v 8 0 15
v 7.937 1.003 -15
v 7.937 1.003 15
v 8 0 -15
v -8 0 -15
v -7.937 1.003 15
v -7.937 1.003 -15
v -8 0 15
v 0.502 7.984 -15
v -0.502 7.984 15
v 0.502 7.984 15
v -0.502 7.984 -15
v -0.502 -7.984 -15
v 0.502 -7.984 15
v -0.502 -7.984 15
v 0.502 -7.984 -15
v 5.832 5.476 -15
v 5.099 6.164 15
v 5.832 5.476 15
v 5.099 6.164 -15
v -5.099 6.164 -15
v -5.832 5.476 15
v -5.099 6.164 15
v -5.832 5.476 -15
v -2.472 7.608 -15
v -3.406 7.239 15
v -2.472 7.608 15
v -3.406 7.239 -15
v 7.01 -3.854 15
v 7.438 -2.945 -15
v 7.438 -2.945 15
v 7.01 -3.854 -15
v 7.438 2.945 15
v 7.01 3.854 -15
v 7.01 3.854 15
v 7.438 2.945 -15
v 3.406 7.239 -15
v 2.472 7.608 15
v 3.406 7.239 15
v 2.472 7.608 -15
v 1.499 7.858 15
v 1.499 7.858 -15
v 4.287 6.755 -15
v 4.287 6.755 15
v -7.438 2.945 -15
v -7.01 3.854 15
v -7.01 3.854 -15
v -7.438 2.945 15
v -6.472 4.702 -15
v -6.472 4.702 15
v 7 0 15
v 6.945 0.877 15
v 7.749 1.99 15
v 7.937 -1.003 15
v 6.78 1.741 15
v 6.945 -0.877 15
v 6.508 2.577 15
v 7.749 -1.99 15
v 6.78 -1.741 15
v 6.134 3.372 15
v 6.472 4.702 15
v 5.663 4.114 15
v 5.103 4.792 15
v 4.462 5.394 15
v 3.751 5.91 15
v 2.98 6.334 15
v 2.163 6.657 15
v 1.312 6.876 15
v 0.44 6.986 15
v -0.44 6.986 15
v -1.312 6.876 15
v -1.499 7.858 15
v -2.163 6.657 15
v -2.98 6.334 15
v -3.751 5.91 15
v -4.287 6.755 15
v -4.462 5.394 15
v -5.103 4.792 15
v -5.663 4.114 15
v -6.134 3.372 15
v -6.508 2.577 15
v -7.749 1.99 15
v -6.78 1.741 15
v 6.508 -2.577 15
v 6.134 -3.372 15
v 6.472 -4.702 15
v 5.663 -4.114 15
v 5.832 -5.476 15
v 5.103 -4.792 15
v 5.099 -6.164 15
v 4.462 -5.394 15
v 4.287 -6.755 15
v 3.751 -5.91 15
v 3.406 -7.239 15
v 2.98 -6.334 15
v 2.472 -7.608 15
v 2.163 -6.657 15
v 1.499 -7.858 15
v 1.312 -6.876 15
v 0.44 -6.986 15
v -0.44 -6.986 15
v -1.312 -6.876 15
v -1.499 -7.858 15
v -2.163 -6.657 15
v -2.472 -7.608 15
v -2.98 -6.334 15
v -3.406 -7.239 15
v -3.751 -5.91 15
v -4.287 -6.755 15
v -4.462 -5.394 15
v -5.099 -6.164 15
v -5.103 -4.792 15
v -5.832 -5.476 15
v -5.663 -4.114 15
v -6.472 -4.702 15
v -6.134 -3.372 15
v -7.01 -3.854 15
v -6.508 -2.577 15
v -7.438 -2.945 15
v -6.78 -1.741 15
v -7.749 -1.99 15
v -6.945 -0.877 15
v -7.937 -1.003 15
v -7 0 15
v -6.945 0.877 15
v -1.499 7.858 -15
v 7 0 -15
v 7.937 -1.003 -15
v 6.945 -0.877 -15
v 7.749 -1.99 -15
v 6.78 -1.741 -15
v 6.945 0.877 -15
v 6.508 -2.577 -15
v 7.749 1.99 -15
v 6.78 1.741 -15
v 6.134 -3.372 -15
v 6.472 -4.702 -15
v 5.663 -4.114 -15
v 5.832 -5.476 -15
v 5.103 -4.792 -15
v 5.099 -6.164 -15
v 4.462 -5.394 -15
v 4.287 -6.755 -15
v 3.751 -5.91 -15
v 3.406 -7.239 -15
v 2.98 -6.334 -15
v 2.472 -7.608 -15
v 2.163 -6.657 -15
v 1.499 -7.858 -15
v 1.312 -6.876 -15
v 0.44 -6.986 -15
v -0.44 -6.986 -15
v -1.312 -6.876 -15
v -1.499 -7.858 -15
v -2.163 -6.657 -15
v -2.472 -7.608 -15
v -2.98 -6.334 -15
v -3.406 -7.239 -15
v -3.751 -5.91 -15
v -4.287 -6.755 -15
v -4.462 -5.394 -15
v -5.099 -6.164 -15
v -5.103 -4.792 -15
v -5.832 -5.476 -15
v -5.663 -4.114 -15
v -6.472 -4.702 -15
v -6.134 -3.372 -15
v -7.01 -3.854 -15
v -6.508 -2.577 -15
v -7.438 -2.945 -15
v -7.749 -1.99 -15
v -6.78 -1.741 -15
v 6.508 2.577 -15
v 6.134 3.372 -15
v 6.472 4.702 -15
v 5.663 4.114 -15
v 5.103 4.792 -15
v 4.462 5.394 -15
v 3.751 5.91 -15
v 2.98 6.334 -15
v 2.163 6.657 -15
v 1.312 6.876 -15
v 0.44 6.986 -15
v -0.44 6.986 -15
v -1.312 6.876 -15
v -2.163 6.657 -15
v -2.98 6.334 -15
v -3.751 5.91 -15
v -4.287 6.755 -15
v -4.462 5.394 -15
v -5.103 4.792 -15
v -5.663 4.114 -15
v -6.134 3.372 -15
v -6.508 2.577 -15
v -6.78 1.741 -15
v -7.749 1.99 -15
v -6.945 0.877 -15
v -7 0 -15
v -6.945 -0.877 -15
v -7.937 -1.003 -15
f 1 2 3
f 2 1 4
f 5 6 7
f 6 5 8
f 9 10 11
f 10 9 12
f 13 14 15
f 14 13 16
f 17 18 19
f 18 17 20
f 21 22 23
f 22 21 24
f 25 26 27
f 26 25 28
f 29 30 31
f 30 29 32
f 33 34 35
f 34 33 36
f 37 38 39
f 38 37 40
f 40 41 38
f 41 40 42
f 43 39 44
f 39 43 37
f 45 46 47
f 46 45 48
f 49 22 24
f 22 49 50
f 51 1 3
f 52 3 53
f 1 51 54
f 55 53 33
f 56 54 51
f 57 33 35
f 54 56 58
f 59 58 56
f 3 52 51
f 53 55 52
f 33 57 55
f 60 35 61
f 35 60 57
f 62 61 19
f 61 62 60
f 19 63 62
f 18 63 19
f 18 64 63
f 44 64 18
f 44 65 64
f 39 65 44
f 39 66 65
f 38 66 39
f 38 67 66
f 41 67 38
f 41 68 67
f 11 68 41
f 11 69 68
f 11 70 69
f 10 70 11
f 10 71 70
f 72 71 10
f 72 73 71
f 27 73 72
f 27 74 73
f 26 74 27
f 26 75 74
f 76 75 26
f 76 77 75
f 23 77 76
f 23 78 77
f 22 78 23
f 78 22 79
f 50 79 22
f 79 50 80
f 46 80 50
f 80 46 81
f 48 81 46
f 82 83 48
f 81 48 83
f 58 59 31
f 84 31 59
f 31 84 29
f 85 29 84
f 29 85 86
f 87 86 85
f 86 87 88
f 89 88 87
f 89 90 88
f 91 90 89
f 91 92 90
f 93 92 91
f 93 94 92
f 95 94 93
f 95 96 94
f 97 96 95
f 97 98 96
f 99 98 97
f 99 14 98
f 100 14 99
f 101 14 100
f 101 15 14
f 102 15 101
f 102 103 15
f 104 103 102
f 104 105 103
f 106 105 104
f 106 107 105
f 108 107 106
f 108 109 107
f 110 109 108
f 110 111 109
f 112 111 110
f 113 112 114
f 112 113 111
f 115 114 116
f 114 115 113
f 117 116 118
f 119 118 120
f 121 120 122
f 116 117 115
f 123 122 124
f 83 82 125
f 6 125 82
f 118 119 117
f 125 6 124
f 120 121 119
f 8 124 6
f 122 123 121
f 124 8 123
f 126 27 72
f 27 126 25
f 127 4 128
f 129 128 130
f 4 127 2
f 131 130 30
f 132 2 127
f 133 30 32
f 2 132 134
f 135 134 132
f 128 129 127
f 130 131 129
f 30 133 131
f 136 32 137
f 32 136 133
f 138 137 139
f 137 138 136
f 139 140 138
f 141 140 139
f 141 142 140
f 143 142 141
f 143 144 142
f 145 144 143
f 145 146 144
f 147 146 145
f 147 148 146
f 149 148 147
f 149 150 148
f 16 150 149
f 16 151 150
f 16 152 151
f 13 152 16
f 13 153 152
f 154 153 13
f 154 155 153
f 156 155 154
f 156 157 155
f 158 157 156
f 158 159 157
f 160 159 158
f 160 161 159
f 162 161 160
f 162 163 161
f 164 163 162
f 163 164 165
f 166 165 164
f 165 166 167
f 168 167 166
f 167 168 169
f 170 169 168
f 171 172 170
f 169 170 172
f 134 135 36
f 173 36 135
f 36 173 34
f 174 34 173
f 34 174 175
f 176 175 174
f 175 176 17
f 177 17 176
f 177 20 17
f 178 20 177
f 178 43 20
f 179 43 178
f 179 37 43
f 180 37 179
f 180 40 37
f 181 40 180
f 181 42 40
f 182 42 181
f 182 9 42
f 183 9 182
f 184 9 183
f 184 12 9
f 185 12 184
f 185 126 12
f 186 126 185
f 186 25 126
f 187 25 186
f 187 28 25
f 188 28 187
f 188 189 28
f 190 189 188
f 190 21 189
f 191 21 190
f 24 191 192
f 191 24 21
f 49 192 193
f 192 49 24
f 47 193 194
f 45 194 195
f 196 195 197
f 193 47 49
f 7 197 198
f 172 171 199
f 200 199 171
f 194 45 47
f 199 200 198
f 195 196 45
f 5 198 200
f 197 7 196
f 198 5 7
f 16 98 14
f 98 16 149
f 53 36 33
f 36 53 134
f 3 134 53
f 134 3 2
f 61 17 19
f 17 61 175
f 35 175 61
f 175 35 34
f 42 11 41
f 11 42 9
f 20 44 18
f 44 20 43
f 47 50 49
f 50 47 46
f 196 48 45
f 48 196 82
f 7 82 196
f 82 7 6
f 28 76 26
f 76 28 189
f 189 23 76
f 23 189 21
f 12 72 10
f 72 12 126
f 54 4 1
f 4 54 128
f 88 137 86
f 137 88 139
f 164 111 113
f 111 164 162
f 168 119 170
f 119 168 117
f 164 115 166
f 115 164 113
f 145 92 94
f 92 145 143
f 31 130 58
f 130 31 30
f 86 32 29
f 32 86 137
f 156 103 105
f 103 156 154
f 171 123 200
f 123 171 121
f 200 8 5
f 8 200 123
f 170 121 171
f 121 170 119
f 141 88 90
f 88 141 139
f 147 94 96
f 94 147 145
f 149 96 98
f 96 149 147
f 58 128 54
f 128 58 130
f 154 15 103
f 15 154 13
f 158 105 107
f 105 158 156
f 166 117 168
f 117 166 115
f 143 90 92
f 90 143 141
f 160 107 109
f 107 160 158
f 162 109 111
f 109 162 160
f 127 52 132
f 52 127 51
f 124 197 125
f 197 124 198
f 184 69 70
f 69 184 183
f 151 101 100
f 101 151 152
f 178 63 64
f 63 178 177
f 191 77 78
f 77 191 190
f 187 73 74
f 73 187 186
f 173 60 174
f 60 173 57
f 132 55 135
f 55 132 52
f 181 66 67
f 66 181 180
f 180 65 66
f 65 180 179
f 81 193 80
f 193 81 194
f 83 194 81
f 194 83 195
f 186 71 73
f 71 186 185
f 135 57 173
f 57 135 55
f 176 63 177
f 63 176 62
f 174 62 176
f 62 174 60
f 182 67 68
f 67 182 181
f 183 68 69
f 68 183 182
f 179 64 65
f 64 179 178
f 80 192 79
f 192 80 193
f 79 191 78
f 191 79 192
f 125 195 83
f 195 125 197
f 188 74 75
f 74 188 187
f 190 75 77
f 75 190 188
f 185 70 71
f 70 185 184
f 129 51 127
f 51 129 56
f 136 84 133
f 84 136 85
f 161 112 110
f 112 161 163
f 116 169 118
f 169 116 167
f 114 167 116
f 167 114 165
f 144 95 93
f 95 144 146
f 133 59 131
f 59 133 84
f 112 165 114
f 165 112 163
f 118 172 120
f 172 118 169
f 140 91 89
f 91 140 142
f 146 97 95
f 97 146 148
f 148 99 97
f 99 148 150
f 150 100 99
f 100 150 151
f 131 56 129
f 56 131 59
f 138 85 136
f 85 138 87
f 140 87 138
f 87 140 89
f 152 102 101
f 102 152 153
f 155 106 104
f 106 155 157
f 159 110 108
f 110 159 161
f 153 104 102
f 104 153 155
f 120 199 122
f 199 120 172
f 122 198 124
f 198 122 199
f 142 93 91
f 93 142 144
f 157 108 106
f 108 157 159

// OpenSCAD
$fn = 50;


difference() {
	union() {
		translate(v = [0, 0, -15.0000000000]) {
			cylinder(h = 30, r = 8.0000000000);
		}
	}
	union() {
		translate(v = [0, 0, -100.0000000000]) {
			cylinder(h = 200, r = 7);
		}
	}
}
